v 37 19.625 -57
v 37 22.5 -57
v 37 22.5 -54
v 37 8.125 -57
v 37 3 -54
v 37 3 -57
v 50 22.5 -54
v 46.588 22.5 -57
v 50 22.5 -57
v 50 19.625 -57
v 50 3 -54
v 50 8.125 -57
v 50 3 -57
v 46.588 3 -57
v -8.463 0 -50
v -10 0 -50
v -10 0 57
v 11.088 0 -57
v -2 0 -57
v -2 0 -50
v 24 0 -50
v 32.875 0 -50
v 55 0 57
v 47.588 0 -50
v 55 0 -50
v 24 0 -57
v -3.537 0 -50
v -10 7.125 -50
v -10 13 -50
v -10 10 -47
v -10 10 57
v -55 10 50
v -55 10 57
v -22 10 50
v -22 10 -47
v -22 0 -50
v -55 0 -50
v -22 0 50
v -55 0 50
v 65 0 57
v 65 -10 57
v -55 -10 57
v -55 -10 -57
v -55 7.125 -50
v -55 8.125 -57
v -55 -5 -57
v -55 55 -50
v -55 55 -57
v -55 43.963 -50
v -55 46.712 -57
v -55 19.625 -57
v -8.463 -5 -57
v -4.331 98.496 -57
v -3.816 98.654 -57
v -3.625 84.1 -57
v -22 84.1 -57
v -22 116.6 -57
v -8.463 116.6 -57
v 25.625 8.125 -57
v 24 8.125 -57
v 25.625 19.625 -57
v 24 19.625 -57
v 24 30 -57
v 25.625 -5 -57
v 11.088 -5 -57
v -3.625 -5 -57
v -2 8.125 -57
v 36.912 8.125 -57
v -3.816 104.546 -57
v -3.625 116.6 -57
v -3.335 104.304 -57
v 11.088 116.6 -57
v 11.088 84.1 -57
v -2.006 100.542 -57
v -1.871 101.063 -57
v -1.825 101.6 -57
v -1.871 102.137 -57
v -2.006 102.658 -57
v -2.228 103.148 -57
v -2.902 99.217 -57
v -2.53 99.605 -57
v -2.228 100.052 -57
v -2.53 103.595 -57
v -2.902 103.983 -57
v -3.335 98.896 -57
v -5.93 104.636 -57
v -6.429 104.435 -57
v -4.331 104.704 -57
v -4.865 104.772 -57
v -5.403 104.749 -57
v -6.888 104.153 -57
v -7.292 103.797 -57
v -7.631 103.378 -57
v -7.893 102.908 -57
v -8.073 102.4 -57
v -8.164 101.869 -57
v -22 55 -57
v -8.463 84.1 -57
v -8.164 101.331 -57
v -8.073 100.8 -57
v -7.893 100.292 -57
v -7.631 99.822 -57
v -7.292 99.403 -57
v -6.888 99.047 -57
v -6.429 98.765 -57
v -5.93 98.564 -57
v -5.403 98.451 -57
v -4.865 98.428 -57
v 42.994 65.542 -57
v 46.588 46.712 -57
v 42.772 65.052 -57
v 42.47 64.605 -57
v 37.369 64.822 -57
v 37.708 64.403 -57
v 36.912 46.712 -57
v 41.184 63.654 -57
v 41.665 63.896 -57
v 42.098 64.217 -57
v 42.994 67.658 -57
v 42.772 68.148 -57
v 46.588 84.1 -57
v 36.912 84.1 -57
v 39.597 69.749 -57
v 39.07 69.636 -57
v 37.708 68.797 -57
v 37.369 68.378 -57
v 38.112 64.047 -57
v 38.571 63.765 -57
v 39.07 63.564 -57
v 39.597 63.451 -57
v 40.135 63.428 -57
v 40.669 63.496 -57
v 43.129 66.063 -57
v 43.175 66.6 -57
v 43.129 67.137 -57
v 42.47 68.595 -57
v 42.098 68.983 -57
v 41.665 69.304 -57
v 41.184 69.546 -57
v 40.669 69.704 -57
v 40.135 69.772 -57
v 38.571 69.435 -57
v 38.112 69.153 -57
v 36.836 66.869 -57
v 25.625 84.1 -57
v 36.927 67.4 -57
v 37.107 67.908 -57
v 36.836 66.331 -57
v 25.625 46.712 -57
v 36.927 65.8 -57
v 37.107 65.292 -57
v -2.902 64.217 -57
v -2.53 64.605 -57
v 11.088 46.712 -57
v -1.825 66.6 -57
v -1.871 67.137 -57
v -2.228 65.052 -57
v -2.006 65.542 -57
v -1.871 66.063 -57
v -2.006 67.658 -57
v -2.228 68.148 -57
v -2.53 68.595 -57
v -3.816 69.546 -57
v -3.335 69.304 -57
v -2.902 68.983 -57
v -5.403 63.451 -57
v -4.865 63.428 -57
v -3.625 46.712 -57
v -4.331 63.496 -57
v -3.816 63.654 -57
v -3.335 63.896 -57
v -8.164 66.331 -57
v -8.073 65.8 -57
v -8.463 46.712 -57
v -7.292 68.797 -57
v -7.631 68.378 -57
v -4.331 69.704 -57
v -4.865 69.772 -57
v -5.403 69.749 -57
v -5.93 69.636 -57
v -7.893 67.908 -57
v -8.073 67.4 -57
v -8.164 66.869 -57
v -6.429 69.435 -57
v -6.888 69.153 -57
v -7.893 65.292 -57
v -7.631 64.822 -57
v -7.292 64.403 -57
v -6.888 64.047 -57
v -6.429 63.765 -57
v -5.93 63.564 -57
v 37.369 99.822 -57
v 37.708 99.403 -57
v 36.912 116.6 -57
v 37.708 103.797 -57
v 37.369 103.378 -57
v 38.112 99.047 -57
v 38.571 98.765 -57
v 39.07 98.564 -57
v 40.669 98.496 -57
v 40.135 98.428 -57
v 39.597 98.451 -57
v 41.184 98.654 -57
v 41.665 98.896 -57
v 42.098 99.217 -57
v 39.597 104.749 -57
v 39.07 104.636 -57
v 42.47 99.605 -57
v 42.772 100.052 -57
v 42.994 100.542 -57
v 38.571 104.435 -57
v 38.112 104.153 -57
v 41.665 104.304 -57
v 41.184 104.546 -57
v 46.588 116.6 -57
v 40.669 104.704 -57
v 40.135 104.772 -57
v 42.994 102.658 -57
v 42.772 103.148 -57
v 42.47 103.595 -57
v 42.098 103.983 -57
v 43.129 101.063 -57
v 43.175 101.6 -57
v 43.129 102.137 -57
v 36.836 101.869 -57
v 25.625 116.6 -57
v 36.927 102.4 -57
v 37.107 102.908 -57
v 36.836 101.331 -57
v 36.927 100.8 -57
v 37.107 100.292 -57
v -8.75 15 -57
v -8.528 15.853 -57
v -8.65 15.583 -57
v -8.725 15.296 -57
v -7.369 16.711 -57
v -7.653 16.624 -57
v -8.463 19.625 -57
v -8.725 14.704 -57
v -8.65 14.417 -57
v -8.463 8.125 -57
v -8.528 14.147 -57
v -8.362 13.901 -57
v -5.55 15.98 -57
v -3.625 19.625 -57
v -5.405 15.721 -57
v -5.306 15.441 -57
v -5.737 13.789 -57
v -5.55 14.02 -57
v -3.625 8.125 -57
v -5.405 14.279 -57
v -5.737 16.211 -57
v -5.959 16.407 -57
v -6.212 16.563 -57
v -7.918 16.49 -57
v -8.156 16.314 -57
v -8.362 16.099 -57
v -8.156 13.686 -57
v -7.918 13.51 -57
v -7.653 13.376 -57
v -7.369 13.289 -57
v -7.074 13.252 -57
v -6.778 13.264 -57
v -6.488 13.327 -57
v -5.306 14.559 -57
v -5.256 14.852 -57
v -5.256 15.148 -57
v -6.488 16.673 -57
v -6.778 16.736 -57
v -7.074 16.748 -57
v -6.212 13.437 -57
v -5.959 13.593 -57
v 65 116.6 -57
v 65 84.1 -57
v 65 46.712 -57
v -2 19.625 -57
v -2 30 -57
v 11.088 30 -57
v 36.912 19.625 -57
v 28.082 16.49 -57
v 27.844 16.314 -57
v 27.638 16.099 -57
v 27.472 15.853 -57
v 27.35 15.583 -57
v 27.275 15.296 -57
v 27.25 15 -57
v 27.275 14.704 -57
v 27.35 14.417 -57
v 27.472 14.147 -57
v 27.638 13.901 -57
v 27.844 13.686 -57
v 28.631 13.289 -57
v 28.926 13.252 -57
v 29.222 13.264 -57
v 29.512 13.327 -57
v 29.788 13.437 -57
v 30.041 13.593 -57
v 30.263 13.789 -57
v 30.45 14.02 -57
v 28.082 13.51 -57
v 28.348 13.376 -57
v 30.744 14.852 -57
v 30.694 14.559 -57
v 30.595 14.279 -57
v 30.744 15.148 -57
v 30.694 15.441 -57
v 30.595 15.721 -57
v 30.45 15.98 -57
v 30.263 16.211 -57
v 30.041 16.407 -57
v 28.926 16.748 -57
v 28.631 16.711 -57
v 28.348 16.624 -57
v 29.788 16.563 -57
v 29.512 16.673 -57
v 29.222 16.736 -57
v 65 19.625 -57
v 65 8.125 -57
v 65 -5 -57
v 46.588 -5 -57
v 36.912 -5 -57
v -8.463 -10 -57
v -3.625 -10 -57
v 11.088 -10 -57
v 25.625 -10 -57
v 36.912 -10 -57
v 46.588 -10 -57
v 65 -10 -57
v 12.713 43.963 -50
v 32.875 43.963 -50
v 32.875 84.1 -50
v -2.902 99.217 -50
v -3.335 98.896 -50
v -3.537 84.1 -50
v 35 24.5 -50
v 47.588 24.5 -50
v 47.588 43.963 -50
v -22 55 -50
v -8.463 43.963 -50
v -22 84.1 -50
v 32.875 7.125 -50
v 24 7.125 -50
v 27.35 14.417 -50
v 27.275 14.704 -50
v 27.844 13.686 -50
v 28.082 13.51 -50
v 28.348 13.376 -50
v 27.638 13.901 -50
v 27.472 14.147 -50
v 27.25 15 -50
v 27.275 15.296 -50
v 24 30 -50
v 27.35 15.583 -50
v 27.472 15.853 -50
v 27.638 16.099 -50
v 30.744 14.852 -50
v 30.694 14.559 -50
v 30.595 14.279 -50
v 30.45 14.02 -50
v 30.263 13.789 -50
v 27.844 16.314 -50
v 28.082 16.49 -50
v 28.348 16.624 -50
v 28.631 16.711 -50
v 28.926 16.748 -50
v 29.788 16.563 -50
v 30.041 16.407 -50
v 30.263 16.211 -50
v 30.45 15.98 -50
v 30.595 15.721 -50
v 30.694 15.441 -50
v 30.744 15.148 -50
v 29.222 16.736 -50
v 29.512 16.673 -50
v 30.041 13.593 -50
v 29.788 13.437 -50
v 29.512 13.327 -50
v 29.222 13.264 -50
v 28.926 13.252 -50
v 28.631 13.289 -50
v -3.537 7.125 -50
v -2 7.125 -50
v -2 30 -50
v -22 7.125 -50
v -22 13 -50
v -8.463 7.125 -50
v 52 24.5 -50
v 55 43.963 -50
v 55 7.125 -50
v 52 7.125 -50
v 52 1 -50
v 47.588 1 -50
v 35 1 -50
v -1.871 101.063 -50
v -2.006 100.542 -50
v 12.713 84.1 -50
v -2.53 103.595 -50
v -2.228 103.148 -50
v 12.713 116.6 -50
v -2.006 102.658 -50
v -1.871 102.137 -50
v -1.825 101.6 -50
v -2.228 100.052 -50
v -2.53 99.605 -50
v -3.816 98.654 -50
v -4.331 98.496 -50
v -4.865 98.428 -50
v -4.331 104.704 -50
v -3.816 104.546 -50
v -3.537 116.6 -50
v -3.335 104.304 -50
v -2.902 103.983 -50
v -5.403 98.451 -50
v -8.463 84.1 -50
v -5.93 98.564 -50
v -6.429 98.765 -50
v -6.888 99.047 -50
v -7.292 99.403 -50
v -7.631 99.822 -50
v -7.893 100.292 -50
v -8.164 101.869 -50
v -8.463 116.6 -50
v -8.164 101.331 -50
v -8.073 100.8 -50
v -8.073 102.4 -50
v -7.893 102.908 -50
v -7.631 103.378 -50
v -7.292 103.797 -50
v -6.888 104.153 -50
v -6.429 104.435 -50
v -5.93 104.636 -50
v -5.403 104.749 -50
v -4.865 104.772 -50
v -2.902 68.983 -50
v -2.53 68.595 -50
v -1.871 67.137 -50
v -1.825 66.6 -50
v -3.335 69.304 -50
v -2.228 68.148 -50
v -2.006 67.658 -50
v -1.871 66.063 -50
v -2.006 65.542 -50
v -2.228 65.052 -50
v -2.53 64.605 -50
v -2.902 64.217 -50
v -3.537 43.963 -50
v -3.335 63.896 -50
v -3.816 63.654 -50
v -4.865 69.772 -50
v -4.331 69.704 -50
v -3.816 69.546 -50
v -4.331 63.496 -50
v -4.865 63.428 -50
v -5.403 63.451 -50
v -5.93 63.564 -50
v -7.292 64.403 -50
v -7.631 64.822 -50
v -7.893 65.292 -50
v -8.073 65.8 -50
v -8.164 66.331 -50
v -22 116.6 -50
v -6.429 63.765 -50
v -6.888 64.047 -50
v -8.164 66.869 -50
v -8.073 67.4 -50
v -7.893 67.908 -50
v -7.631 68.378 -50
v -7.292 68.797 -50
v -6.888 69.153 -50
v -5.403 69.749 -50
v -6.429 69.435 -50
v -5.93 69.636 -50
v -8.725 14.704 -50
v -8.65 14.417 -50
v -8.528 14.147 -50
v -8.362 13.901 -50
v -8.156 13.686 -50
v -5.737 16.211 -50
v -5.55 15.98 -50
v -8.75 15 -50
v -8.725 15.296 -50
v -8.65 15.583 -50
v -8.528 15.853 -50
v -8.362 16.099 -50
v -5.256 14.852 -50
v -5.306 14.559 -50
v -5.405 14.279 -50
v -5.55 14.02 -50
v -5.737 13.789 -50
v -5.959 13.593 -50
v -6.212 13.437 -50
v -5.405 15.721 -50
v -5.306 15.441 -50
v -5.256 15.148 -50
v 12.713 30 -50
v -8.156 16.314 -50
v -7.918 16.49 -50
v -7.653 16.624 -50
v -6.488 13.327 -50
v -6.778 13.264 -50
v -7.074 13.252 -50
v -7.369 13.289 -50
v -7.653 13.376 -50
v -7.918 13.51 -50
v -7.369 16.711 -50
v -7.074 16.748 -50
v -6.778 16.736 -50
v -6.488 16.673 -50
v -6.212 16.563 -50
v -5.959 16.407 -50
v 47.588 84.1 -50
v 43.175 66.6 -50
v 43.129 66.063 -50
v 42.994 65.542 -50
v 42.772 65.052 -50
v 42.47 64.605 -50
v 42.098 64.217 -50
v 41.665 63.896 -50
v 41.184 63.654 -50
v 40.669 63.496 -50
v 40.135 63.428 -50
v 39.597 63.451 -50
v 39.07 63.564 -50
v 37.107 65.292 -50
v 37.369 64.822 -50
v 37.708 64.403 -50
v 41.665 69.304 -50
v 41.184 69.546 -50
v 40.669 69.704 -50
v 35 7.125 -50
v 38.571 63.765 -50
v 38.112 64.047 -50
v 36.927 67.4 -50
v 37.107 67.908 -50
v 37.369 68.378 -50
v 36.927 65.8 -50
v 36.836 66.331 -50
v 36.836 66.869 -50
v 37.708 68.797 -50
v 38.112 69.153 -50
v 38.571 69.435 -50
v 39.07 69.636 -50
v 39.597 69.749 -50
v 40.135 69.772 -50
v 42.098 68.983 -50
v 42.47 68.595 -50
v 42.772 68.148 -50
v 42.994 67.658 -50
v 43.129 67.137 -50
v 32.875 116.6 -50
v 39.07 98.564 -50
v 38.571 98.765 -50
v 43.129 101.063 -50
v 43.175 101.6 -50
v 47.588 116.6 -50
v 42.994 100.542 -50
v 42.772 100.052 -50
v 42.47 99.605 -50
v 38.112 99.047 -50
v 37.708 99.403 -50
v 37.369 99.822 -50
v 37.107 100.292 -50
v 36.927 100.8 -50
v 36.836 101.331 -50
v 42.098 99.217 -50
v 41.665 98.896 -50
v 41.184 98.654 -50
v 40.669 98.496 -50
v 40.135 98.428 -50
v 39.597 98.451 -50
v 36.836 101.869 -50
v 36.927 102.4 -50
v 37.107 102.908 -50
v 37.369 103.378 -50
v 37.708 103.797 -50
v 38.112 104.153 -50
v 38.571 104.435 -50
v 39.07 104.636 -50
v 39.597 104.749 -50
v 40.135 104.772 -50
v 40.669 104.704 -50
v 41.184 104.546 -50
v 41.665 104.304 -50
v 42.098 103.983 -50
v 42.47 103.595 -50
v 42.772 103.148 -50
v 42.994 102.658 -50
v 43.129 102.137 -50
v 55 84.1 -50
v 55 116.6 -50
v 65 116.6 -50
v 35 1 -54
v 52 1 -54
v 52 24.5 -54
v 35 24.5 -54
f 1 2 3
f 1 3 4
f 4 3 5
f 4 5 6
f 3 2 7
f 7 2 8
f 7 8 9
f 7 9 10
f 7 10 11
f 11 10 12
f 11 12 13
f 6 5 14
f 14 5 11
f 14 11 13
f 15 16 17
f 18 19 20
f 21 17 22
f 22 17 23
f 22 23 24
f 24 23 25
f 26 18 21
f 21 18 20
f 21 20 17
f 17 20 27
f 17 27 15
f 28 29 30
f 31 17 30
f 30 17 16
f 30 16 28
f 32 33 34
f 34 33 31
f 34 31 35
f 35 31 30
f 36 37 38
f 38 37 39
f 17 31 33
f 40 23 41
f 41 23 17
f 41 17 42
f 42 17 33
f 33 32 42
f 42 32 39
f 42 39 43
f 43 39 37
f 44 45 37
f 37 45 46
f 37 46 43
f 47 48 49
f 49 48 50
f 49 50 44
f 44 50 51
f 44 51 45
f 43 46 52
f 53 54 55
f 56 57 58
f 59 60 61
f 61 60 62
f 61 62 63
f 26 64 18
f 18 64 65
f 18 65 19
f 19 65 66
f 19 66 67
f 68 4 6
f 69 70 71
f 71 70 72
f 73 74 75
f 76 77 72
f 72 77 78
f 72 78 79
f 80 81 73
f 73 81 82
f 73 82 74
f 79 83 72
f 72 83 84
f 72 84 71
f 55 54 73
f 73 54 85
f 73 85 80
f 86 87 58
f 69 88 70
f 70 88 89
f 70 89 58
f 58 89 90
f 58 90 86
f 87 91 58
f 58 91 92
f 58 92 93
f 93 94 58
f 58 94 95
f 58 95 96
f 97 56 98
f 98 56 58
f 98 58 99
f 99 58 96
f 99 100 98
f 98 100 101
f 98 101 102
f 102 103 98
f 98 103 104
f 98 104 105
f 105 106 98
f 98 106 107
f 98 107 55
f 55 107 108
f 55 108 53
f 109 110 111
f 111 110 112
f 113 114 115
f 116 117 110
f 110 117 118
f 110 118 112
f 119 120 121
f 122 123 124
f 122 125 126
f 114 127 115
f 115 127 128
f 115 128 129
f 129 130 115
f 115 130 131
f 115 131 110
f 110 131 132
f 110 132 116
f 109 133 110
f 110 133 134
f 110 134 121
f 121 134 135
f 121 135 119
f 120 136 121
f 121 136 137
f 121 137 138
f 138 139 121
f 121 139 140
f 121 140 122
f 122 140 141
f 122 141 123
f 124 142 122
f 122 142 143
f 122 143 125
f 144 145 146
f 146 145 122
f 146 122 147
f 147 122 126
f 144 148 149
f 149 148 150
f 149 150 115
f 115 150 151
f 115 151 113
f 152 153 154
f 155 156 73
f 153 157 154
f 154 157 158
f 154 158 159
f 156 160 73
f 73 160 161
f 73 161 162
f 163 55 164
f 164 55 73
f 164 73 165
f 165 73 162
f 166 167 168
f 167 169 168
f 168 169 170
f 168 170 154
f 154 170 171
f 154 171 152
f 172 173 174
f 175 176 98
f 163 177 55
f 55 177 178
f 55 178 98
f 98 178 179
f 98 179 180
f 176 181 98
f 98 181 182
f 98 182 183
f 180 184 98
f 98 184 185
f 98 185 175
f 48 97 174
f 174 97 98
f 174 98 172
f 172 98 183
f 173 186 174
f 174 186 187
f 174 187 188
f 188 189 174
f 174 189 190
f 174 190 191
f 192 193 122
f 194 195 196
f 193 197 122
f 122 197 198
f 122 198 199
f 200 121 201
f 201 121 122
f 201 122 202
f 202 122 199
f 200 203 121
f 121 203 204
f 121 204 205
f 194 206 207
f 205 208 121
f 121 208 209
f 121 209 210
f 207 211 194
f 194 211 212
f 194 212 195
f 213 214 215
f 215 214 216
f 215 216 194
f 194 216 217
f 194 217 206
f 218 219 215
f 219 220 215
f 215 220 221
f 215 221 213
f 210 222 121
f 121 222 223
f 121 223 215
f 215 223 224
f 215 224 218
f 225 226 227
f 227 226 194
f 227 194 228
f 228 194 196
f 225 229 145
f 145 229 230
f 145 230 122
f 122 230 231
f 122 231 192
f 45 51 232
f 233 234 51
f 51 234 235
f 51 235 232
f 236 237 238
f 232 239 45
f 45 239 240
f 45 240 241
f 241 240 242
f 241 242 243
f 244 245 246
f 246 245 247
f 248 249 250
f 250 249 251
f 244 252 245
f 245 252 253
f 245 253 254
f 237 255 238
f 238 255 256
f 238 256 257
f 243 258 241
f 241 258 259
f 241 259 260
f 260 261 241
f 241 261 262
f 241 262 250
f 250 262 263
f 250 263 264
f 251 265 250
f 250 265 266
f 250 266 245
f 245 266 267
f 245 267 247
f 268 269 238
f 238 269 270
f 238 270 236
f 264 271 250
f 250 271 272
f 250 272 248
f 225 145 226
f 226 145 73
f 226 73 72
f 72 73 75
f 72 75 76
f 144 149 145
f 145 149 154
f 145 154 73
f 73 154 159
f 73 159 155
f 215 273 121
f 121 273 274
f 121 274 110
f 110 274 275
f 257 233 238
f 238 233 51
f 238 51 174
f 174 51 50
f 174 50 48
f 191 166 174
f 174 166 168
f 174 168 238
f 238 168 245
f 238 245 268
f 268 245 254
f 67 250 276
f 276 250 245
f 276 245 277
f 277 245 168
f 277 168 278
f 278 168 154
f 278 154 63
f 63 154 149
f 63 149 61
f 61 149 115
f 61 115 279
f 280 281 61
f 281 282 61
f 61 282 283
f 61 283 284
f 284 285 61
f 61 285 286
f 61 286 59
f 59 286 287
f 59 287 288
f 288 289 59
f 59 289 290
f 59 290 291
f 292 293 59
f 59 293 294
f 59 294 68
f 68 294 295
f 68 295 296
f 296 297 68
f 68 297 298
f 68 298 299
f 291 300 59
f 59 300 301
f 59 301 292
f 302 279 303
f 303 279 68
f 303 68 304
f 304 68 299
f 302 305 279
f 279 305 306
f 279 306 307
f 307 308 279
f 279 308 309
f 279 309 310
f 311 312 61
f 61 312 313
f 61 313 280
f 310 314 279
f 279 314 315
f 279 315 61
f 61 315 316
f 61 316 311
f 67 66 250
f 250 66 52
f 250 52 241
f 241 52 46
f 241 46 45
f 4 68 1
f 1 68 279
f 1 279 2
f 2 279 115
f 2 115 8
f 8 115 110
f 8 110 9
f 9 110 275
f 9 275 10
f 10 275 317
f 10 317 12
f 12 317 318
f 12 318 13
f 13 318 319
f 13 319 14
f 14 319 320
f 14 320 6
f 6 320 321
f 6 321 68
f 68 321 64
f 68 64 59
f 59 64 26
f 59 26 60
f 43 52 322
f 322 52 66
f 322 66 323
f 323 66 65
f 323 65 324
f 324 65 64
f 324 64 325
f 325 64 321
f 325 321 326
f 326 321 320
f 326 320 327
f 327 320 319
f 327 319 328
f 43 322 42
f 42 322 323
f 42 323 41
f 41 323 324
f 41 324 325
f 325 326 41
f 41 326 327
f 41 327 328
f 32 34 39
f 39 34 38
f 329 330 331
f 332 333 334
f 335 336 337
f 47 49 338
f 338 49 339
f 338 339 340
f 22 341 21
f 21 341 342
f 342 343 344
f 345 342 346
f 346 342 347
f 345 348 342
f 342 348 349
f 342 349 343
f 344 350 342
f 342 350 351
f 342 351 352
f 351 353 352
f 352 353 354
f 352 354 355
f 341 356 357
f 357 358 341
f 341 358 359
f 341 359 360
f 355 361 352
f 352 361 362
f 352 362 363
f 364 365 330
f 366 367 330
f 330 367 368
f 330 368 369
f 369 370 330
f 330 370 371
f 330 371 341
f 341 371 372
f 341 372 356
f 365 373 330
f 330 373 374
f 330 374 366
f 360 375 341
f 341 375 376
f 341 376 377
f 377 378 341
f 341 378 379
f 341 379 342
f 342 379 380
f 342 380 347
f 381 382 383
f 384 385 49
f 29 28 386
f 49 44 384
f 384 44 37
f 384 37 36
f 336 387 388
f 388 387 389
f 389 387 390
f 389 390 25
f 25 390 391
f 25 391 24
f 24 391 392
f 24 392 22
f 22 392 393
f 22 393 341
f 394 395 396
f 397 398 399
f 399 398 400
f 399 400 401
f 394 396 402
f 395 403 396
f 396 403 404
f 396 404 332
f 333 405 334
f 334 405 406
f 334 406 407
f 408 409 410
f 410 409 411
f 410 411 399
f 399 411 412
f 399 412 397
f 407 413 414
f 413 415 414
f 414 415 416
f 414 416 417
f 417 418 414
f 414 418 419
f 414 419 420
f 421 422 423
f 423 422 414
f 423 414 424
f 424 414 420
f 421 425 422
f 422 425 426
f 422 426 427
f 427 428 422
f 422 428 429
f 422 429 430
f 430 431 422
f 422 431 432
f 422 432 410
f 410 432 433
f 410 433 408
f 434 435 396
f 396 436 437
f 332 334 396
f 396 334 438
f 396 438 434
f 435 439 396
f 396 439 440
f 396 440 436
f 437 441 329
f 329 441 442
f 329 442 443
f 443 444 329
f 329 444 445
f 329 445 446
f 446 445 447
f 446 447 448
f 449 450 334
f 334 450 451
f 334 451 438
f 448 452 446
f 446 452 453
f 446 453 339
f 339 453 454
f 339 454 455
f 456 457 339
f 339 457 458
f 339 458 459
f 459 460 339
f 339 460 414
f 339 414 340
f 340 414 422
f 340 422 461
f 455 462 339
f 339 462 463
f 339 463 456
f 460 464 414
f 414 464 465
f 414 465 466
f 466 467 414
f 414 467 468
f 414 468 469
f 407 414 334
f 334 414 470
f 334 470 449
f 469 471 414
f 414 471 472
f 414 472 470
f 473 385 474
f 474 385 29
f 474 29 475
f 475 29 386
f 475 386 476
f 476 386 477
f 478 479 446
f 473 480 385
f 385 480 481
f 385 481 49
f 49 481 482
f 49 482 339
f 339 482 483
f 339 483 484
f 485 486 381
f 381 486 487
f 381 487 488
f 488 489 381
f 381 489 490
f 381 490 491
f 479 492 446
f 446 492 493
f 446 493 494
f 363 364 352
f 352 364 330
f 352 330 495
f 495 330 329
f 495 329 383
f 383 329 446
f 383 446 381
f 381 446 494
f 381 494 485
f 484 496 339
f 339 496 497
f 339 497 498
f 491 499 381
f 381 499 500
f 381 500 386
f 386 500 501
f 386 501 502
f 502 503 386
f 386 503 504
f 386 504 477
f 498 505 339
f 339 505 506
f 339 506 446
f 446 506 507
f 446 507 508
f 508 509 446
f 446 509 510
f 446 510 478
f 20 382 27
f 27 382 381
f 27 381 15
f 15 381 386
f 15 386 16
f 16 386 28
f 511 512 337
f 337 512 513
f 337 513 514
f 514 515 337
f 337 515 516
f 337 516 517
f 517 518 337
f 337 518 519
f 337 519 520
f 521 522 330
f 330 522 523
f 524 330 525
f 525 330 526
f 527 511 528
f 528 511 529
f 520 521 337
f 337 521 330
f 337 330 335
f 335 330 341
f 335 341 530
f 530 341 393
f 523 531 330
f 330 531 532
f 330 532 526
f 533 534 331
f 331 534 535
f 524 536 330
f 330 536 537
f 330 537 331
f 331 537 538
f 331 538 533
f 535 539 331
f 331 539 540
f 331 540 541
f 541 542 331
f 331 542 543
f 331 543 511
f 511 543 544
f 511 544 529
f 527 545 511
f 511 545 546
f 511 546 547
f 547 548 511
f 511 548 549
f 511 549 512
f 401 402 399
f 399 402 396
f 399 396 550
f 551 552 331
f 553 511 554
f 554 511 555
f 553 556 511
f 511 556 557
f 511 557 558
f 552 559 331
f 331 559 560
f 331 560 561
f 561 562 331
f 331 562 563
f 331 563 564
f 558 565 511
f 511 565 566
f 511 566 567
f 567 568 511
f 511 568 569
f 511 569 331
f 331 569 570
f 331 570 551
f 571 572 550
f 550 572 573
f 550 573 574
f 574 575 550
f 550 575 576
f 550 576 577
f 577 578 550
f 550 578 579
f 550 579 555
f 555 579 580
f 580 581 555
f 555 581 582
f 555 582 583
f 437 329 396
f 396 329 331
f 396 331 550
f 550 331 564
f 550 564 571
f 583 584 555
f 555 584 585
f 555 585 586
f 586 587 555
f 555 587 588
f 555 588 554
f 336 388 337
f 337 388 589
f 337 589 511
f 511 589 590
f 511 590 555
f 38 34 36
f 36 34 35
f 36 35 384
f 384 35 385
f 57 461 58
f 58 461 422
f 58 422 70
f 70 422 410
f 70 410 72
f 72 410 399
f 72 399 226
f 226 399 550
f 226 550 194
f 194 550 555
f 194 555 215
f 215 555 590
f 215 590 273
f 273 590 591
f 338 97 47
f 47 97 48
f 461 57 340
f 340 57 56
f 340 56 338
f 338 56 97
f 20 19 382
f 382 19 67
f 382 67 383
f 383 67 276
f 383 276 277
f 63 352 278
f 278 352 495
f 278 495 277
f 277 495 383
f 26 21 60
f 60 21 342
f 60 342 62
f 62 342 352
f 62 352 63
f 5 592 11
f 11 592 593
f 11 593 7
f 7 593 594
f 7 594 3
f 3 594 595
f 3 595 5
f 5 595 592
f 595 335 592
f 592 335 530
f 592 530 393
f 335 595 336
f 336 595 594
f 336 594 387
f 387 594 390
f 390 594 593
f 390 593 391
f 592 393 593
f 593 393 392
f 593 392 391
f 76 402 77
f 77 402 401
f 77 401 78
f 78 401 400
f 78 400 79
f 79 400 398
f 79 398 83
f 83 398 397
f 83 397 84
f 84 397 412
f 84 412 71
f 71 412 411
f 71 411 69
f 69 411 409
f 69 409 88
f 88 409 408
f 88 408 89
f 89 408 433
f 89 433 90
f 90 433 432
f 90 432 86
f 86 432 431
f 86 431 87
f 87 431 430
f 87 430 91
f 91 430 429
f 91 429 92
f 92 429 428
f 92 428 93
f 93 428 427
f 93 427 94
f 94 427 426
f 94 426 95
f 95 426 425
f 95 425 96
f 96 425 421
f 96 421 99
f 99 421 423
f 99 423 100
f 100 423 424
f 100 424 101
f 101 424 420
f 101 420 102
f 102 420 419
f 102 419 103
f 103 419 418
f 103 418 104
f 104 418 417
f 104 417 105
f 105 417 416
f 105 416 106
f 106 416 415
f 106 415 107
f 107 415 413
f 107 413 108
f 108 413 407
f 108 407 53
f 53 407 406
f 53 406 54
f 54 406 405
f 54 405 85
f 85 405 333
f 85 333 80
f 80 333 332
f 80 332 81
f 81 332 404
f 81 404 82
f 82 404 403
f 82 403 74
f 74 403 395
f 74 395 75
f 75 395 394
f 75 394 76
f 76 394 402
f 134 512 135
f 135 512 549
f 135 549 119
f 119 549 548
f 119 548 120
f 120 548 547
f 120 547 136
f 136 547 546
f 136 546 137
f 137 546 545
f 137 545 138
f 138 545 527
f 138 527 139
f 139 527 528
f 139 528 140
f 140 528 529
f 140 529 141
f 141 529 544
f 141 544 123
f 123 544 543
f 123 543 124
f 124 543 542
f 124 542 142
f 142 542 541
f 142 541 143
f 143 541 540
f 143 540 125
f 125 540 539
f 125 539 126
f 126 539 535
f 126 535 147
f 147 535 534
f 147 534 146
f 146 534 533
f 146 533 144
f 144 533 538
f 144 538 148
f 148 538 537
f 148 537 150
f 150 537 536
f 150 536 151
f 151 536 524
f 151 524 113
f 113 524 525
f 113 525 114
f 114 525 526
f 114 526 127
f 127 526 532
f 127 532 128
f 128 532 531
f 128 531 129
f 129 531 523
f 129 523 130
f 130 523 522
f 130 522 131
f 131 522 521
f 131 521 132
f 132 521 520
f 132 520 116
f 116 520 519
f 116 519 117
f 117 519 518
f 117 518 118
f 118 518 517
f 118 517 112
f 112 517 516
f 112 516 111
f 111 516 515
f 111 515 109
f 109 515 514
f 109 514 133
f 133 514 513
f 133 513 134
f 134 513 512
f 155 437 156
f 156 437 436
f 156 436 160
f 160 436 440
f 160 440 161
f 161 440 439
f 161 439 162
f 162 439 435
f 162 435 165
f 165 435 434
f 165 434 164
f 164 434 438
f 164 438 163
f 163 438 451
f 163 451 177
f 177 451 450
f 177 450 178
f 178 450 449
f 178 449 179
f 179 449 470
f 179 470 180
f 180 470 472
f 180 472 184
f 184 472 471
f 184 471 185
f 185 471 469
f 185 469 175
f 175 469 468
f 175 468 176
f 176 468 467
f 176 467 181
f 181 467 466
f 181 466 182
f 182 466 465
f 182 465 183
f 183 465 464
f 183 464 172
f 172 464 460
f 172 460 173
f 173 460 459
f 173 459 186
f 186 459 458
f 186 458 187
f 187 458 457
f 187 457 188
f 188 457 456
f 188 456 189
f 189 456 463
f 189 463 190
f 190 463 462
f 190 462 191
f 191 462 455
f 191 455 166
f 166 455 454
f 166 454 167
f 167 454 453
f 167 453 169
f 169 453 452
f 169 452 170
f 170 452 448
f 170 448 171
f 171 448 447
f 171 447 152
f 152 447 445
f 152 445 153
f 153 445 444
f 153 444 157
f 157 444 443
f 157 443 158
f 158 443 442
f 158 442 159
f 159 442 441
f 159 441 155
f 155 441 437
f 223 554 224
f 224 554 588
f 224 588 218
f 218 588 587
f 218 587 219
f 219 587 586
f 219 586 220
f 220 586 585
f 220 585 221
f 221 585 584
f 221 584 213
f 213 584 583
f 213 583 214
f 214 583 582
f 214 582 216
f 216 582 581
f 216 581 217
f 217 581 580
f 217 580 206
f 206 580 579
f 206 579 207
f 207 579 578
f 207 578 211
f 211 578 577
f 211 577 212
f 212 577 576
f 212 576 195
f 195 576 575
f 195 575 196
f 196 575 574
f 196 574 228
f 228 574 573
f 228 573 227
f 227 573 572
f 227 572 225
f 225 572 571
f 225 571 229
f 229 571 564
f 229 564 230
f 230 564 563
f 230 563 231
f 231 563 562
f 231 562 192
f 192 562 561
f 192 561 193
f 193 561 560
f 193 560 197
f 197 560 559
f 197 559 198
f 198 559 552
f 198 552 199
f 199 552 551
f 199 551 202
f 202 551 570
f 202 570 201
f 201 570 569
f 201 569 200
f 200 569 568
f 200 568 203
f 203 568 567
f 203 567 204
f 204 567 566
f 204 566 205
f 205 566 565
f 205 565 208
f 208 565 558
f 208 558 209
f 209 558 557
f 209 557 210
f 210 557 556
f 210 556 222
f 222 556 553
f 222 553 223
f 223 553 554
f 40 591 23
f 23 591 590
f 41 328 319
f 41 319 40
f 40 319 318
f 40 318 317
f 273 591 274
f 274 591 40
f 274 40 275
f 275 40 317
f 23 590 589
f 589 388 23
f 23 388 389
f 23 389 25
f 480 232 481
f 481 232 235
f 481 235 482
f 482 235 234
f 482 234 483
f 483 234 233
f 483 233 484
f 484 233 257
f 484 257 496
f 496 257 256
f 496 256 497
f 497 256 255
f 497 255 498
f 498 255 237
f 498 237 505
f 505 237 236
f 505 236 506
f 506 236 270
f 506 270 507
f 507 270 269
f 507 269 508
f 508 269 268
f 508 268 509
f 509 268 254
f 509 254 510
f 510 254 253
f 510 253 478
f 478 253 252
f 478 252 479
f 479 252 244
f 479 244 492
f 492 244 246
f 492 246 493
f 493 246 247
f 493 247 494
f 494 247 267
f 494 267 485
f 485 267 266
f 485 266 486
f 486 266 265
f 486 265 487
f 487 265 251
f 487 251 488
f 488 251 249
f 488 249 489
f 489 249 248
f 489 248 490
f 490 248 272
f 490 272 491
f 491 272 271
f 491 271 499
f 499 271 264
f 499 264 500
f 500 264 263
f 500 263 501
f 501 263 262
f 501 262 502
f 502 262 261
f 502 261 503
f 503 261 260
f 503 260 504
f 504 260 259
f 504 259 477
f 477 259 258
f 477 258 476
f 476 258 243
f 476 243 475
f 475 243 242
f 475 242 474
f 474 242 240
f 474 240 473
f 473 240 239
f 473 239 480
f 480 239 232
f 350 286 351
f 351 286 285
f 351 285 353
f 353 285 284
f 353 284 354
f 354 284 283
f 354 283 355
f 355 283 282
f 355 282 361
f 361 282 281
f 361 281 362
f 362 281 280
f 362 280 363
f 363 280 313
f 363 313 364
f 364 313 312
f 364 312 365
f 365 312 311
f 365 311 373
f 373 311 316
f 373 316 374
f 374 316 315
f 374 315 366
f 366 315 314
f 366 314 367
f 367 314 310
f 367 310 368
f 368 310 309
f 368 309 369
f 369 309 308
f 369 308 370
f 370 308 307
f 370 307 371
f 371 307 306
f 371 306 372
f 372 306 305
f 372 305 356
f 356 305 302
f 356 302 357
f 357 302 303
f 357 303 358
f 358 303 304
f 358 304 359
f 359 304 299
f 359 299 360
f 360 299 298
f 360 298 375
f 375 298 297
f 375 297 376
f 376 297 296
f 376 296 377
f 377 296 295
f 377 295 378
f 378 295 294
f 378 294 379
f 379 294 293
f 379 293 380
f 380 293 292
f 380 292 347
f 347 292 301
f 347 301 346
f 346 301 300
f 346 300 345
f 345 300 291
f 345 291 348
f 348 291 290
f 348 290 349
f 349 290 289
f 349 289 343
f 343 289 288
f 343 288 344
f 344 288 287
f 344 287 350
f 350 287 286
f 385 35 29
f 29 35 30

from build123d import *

# Parameters (mm, degrees)
SKETCH1_W           = 110
SKETCH1_H           = 114
BOSS_EXTRUDE1_DEPTH = 10
BOSS_EXTRUDE2_DEPTH = 10
SKETCH4_W           = 110
SKETCH4_H           = 7
BOSS_EXTRUDE3_DEPTH = 116.6
SKETCH12_W          = 33
SKETCH12_H          = 7
CUT_EXTRUDE6_DEPTH  = 61.6
SKETCH8_W           = 26
SKETCH8_H           = 30
CUT_EXTRUDE3_DEPTH  = 8
SKETCH9_W           = 13
SKETCH9_H           = 19.5
CUT_EXTRUDE4_DEPTH  = 8
SKETCH10_W          = 17
SKETCH10_H          = 23.5
CUT_EXTRUDE5_DEPTH  = 4
SKETCH6_R           = 3.175
CUT_EXTRUDE1_DEPTH  = 8
BOSS_EXTRUDE5_DEPTH = 10
SKETCH14_R          = 1.75
CUT_EXTRUDE7_DEPTH  = 115
CHAMFER2_SIZE       = 3


with BuildPart() as part:
    # Sketch1 → Boss-Extrude1 (new body)
    with BuildSketch(Plane(origin=(0, 0, 0), x_dir=(1, 0, 0), z_dir=(0, 1, 0))):
        Rectangle(SKETCH1_W, SKETCH1_H)
    extrude(amount=-BOSS_EXTRUDE1_DEPTH)

    # Sketch3 → Boss-Extrude2 (add)
    with BuildSketch(Plane(origin=(0, 0, 0), x_dir=(1, 0, 0), z_dir=(0, 1, 0))):
        Polygon((-55, -50), (-55, -57), (-10, -57), (-10, 57), (-55, 57), (-55, 50), (-22, 50), (-22, -50), align=None)
    extrude(amount=BOSS_EXTRUDE2_DEPTH)

    # Sketch4 → Boss-Extrude3 (add)
    with BuildSketch(Plane(origin=(0, 0, 0), x_dir=(1, 0, 0), z_dir=(0, 1, 0))):
        with Locations((0, 53.5)):
            Rectangle(SKETCH4_W, SKETCH4_H)
    extrude(amount=BOSS_EXTRUDE3_DEPTH)

    # Sketch12 → Cut-Extrude6 (cut)
    with BuildSketch(Plane(origin=(0, 116.6, 0), x_dir=(1, 0, 0), z_dir=(0, 1, 0))):
        with Locations((-38.5, 53.5)):
            Rectangle(SKETCH12_W, SKETCH12_H)
    extrude(amount=-CUT_EXTRUDE6_DEPTH, mode=Mode.SUBTRACT)

    # Sketch8 → Cut-Extrude3 (cut, through all)
    with BuildSketch(Plane.XY.offset(-50)):
        with Locations((11, 15)):
            Rectangle(SKETCH8_W, SKETCH8_H)
    extrude(amount=-CUT_EXTRUDE3_DEPTH, mode=Mode.SUBTRACT)

    # Sketch9 → Cut-Extrude4 (cut, through all)
    with BuildSketch(Plane.XY.offset(-50)):
        with Locations((43.5, 12.75)):
            Rectangle(SKETCH9_W, SKETCH9_H)
    extrude(amount=-CUT_EXTRUDE4_DEPTH, mode=Mode.SUBTRACT)

    # Sketch10 → Cut-Extrude5 (cut)
    with BuildSketch(Plane.XY.offset(-50)):
        with Locations((43.5, 12.75)):
            Rectangle(SKETCH10_W, SKETCH10_H)
    extrude(amount=-CUT_EXTRUDE5_DEPTH, mode=Mode.SUBTRACT)

    # Sketch6 → Cut-Extrude1 (cut, through all)
    with BuildSketch(Plane.XY.offset(-50)):
        with Locations((-5, 101.6)):
            Circle(SKETCH6_R)
        with Locations((40, 101.6)):
            Circle(SKETCH6_R)
        with Locations((-5, 66.6)):
            Circle(SKETCH6_R)
        with Locations((40, 66.6)):
            Circle(SKETCH6_R)
    extrude(amount=-CUT_EXTRUDE1_DEPTH, mode=Mode.SUBTRACT)

    # Sketch11 → Boss-Extrude5 (add)
    with BuildSketch(Plane(origin=(55, 0, 0), x_dir=(0, 0, -1), z_dir=(1, 0, 0))):
        Polygon((57, 116.6), (50, 116.6), (-57, 0), (-57, -10), (57, -10), align=None)
    extrude(amount=BOSS_EXTRUDE5_DEPTH)

    # Sketch14 → Cut-Extrude7 (cut, through all)
    with BuildSketch(Plane(origin=(0, 0, -57), x_dir=(-1, 0, 0), z_dir=(0, 0, -1))):
        with Locations((-29, 15)):
            Circle(SKETCH14_R)
        with Locations((7, 15)):
            Circle(SKETCH14_R)
    extrude(amount=-CUT_EXTRUDE7_DEPTH, mode=Mode.SUBTRACT)

    # Chamfer2
    chamfer2_edges = [part.edges().sort_by_distance(p)[0] for p in [
        (-16, 10, -50),
    ]]
    chamfer(chamfer2_edges, length=CHAMFER2_SIZE)


solid = part.part
